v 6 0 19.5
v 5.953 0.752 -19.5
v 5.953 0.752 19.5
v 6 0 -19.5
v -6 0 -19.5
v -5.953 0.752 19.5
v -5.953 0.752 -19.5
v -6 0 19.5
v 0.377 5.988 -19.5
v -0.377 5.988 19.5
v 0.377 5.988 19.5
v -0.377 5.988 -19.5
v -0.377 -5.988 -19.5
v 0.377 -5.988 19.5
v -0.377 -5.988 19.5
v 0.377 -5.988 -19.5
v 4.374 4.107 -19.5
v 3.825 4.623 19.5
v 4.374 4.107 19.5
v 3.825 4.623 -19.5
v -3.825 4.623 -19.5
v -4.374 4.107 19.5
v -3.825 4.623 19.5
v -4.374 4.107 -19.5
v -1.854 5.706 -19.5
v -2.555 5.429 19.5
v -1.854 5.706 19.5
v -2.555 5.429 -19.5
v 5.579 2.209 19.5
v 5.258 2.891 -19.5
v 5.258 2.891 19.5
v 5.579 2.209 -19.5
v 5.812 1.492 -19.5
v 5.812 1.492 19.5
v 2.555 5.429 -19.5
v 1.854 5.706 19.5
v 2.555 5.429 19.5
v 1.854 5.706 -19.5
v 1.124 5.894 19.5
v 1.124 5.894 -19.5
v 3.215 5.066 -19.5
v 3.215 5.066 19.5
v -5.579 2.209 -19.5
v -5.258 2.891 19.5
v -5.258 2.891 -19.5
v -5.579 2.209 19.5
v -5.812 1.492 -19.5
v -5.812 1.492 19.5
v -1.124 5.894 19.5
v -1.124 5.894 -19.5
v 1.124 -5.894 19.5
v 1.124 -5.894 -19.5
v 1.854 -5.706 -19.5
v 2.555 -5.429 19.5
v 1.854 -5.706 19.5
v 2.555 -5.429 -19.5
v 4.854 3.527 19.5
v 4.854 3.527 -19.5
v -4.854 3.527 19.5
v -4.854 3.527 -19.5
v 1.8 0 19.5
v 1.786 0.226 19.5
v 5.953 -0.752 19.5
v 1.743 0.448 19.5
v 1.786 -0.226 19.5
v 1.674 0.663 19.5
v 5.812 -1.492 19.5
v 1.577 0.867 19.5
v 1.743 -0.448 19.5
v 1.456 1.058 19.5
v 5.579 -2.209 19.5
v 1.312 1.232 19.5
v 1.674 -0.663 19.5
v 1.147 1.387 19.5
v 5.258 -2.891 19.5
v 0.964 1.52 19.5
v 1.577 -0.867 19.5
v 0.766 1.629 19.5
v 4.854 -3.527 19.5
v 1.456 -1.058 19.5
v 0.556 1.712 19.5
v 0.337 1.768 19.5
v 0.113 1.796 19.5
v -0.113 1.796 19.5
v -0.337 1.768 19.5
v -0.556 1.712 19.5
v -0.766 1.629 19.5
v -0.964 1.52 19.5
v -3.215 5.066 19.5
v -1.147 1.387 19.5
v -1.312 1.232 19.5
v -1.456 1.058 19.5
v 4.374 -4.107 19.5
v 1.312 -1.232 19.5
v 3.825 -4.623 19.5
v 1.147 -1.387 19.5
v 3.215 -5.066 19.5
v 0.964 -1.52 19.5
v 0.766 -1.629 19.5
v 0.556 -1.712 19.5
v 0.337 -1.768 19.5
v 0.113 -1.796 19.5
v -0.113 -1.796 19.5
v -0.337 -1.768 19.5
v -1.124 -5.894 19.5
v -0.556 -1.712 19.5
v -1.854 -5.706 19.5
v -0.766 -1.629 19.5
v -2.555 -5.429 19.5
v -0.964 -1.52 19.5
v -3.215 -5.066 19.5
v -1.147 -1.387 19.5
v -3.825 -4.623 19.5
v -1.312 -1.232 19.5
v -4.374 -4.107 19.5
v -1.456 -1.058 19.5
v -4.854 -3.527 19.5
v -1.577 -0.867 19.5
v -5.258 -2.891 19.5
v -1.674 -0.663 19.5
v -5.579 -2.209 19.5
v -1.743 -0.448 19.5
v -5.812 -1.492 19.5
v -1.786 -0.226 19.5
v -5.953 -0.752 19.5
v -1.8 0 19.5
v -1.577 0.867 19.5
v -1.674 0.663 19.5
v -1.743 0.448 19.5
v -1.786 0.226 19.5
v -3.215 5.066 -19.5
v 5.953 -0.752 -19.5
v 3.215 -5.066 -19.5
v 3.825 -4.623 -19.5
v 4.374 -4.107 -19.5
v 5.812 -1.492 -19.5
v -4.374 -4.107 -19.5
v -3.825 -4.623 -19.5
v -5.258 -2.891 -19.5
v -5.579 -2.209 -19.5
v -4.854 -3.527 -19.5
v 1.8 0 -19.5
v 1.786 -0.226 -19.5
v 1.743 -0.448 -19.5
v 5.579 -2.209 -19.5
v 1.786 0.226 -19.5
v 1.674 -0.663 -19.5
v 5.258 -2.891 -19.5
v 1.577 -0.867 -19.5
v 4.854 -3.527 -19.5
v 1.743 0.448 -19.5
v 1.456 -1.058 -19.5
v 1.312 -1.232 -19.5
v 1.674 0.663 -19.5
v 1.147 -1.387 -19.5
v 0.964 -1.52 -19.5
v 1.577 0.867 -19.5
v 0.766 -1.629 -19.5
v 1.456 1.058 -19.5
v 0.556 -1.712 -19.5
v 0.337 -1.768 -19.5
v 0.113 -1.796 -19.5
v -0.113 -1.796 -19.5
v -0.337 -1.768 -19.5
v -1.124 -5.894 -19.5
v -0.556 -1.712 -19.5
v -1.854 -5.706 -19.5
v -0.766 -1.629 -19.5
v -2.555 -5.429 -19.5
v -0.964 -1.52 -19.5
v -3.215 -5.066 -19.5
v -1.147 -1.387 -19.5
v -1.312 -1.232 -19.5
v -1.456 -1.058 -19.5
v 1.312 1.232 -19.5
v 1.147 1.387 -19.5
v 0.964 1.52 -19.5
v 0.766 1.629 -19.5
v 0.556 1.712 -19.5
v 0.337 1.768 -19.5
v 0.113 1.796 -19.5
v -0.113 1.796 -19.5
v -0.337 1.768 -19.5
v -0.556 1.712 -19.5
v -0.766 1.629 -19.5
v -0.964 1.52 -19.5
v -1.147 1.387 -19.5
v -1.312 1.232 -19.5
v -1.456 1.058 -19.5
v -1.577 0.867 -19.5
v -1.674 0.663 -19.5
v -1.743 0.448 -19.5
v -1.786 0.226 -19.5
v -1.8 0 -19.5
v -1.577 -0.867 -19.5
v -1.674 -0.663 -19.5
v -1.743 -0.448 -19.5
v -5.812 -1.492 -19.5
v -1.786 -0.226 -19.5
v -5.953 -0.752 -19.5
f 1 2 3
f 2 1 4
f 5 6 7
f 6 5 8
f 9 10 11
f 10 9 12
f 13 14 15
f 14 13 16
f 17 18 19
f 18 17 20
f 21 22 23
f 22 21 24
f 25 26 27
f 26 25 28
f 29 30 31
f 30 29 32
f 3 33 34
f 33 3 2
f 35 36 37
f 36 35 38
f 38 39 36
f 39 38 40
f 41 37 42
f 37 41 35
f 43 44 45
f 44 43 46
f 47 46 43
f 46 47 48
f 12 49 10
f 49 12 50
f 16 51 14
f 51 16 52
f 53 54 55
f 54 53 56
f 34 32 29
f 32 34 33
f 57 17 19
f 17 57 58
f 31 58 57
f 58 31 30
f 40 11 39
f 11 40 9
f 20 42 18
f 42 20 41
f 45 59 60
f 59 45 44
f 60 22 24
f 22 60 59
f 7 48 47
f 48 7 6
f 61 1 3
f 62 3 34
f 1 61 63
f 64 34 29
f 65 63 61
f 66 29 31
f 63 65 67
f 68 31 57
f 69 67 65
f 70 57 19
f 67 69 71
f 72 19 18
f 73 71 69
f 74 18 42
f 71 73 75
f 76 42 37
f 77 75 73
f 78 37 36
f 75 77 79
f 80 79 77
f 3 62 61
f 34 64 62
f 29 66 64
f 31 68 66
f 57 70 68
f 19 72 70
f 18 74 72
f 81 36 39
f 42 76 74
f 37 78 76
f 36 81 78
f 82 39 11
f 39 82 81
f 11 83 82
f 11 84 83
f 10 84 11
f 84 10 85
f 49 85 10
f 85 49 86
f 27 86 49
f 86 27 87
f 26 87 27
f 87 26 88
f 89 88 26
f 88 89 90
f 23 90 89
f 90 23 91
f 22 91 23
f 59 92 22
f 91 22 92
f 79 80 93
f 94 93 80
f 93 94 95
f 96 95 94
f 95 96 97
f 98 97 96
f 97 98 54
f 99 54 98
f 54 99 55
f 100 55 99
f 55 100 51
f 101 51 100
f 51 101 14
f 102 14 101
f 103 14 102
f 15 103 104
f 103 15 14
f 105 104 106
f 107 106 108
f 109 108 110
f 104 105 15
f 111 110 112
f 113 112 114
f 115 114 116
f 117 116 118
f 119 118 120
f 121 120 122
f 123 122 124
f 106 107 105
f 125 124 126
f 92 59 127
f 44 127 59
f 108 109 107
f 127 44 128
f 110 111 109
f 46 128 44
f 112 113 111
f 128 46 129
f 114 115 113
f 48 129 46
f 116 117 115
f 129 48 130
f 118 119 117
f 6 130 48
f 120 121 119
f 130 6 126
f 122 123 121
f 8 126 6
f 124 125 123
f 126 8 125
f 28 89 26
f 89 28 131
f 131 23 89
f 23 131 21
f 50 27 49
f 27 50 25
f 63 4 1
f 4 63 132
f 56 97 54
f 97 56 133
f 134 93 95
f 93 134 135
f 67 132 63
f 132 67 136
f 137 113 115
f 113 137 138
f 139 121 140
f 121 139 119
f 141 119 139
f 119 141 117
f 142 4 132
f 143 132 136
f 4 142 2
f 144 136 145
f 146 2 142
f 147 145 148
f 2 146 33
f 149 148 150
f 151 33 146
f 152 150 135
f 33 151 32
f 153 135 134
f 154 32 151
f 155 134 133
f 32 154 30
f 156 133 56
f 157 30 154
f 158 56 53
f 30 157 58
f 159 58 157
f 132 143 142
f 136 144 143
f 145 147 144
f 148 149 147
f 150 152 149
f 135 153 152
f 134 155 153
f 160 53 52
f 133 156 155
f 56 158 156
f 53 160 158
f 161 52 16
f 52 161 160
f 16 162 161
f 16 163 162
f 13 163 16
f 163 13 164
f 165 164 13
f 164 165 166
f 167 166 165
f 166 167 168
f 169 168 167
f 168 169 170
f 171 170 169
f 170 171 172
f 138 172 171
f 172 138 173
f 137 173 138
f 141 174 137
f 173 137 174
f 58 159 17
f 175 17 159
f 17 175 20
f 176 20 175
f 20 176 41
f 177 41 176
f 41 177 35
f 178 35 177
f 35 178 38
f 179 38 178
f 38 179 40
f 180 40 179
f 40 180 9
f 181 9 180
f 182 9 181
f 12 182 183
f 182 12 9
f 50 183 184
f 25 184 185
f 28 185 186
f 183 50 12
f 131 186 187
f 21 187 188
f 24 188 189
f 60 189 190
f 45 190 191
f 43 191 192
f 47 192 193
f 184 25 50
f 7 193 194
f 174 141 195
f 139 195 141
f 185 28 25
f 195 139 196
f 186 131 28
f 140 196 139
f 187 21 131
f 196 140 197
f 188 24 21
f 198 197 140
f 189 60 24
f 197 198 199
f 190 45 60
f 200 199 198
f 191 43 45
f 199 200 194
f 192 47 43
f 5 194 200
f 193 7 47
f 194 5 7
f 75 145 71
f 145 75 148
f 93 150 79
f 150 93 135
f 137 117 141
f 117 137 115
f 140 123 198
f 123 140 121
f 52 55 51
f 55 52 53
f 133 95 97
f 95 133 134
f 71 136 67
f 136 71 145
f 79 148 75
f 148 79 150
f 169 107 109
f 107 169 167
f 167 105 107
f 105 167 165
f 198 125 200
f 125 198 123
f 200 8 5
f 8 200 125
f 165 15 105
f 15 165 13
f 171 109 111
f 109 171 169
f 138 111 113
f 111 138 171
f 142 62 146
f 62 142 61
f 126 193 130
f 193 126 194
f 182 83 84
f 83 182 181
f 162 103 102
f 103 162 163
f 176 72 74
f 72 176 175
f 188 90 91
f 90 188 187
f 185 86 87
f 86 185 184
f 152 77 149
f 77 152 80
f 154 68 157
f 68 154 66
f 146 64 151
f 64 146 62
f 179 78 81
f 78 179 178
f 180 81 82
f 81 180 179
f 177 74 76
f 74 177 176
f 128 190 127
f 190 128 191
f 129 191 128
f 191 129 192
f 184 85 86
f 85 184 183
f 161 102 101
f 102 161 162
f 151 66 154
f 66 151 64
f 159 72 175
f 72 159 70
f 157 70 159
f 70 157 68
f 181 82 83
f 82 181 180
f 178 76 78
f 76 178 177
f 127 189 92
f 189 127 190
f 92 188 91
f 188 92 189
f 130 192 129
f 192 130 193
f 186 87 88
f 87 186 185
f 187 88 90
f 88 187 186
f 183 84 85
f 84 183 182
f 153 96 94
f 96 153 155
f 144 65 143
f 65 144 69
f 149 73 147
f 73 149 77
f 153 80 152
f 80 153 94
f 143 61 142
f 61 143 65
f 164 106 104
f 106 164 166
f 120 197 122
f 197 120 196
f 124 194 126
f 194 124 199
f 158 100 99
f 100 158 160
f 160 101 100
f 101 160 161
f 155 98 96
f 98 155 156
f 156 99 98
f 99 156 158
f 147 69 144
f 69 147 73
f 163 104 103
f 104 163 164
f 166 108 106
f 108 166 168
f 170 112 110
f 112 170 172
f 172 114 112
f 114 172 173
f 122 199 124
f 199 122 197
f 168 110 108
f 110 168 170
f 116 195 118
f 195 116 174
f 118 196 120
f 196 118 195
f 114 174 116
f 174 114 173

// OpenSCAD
$fn = 50;


difference() {
	union() {
		translate(v = [0, 0, -19.5000000000]) {
			cylinder(h = 39, r = 6.0000000000);
		}
	}
	union() {
		translate(v = [0, 0, -100.0000000000]) {
			cylinder(h = 200, r = 1.8000000000);
		}
	}
}
